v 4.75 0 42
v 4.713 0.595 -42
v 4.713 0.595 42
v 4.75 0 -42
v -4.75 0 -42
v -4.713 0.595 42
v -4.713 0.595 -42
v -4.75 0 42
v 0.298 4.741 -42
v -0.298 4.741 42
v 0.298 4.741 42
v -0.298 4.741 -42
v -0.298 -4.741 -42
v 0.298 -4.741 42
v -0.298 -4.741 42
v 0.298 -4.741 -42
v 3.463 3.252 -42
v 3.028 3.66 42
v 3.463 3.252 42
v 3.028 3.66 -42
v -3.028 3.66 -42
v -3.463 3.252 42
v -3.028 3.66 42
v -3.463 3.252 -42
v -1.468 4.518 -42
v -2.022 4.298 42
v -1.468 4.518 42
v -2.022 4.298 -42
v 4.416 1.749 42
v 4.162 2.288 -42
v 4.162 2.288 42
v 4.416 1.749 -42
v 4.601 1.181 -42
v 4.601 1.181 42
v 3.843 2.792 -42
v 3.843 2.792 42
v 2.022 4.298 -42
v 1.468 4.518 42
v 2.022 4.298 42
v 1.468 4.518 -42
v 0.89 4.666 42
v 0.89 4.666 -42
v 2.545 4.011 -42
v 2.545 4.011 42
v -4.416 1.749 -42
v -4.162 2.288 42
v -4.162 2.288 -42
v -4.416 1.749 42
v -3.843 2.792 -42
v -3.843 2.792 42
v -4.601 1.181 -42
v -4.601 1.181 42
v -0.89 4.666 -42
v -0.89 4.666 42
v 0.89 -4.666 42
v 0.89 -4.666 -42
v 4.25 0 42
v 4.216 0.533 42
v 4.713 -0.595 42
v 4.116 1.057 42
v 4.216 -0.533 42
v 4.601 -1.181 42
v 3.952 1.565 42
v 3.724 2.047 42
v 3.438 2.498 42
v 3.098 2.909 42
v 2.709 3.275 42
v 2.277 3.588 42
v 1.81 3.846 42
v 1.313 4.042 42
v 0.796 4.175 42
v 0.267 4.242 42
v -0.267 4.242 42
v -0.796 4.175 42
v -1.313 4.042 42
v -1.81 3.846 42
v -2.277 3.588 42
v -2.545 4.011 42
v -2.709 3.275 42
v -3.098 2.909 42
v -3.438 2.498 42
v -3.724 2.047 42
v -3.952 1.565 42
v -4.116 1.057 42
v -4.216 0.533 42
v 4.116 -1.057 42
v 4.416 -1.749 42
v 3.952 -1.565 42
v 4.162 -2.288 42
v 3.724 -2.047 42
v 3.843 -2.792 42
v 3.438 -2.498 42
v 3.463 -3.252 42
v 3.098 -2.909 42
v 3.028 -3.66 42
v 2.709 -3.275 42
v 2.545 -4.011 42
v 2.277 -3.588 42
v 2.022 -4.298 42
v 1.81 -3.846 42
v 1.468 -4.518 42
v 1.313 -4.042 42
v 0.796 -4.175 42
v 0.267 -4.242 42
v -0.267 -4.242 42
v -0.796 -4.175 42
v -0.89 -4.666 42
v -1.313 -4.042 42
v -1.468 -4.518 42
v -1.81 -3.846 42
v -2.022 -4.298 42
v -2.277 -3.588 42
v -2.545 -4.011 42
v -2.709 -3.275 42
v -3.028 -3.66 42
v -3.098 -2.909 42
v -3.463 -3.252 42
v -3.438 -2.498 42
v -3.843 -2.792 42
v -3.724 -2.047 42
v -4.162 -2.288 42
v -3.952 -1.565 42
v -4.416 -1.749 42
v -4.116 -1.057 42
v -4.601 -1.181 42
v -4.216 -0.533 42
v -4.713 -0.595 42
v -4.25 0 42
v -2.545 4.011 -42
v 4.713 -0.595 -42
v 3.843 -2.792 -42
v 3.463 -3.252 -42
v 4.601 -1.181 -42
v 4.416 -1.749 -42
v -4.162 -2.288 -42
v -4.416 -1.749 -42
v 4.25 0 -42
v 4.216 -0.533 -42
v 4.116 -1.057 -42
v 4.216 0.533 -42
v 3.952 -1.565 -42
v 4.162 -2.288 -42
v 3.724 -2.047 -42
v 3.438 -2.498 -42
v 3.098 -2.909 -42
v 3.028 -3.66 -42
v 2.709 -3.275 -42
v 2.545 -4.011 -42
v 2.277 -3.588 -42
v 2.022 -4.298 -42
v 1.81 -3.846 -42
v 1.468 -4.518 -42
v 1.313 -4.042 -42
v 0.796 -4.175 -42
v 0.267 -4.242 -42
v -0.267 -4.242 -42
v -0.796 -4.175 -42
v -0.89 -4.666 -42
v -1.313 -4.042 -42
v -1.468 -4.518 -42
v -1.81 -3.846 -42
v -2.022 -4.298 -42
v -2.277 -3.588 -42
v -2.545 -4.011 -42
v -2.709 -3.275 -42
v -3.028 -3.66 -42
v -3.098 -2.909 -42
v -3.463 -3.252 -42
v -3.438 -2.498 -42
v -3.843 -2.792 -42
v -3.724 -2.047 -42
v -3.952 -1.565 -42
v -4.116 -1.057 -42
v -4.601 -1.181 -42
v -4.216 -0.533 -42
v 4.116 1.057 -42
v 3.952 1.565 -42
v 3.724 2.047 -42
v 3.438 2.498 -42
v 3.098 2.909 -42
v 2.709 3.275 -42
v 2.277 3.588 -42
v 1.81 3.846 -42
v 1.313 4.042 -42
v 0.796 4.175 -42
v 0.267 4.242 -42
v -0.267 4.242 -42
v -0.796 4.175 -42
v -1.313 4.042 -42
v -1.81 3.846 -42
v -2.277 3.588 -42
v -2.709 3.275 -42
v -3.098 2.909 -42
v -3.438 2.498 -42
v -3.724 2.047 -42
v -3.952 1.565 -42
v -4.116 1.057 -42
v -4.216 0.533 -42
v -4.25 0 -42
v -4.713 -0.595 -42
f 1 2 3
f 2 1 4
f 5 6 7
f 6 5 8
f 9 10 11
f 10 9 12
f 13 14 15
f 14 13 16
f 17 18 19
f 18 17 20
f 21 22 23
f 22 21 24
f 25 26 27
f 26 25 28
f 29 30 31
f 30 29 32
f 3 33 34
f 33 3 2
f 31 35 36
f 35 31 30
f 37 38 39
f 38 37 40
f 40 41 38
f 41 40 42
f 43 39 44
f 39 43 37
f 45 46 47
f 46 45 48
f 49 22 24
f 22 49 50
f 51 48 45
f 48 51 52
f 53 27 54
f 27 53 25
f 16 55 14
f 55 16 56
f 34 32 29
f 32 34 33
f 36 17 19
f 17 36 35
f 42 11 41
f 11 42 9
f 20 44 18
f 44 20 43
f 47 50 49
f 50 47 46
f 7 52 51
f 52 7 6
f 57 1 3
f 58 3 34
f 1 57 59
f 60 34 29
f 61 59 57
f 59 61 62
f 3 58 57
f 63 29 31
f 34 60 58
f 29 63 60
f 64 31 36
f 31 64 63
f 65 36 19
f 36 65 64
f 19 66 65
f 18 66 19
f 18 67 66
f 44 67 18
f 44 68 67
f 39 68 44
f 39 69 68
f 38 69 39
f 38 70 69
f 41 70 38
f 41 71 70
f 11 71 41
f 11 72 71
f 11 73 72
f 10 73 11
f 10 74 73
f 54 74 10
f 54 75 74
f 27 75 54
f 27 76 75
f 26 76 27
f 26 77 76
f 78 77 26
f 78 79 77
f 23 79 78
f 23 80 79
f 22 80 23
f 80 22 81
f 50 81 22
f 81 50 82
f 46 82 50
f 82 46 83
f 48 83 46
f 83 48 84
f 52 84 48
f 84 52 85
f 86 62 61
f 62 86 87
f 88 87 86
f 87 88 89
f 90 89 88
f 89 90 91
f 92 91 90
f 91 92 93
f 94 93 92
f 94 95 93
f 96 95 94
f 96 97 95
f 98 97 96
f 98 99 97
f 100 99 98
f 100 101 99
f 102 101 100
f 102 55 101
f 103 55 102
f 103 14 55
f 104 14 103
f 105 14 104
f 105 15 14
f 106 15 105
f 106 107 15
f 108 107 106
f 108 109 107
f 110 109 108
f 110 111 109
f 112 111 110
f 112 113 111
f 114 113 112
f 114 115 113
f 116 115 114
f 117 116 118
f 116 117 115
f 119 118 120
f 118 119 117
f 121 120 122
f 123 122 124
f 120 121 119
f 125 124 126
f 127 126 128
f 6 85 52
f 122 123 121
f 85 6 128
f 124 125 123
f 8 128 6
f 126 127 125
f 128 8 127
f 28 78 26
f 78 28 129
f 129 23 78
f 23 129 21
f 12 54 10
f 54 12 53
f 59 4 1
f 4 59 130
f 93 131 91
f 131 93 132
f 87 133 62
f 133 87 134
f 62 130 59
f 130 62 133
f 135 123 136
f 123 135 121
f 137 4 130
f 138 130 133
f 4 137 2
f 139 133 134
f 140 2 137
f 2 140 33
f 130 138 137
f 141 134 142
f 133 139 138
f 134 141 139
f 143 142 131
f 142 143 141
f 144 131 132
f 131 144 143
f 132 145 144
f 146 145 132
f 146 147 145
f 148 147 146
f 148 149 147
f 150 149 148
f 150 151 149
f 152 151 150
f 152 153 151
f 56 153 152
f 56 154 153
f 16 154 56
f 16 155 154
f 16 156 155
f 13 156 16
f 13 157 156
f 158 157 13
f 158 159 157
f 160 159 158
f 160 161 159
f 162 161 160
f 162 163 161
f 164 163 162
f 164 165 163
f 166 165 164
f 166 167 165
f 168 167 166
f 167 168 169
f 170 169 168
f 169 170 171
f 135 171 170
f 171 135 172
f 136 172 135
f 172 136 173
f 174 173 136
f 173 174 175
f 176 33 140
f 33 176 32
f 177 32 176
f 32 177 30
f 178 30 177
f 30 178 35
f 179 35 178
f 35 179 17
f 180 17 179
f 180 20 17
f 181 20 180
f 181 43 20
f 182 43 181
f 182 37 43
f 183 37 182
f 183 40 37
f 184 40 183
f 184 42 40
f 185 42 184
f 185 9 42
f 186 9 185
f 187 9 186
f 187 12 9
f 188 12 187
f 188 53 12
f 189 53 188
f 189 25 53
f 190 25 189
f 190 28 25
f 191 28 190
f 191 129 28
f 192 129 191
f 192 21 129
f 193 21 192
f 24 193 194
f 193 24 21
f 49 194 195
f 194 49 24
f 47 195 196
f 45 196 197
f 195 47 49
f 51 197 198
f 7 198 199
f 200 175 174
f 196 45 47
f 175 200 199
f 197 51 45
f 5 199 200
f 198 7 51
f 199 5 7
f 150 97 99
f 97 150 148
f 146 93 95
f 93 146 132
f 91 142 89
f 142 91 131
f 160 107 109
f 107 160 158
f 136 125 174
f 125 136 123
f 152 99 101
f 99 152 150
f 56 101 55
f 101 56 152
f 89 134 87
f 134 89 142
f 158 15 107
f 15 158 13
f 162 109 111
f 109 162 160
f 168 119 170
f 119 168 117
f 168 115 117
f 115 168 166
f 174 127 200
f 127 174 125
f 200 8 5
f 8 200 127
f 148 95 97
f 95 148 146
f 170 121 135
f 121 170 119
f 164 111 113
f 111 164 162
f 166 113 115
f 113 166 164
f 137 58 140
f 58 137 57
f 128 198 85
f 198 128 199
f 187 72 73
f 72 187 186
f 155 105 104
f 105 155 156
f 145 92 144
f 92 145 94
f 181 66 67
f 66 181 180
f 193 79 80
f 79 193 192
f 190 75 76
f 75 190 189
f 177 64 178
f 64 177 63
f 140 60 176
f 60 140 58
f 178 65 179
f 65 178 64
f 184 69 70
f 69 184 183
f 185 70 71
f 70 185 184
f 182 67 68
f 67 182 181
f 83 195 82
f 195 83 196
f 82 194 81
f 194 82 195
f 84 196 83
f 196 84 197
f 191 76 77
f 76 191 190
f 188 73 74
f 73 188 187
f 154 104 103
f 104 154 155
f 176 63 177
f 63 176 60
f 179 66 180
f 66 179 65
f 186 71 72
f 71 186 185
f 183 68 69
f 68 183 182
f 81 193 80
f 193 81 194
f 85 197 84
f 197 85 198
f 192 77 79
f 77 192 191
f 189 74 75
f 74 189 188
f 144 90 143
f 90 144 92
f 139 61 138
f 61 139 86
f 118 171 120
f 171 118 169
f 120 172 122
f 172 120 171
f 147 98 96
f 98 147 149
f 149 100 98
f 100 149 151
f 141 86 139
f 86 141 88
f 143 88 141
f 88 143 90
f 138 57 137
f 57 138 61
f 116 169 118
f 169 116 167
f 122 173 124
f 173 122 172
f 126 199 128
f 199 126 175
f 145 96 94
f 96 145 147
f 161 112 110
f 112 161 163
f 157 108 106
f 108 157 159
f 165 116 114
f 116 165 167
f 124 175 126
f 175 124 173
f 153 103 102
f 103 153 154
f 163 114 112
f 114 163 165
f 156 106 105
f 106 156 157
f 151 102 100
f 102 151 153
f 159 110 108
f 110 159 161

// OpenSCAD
$fn = 50;


difference() {
	union() {
		translate(v = [0, 0, -42.0000000000]) {
			cylinder(h = 84, r = 4.7500000000);
		}
	}
	union() {
		translate(v = [0, 0, -100.0000000000]) {
			cylinder(h = 200, r = 4.2500000000);
		}
	}
}
